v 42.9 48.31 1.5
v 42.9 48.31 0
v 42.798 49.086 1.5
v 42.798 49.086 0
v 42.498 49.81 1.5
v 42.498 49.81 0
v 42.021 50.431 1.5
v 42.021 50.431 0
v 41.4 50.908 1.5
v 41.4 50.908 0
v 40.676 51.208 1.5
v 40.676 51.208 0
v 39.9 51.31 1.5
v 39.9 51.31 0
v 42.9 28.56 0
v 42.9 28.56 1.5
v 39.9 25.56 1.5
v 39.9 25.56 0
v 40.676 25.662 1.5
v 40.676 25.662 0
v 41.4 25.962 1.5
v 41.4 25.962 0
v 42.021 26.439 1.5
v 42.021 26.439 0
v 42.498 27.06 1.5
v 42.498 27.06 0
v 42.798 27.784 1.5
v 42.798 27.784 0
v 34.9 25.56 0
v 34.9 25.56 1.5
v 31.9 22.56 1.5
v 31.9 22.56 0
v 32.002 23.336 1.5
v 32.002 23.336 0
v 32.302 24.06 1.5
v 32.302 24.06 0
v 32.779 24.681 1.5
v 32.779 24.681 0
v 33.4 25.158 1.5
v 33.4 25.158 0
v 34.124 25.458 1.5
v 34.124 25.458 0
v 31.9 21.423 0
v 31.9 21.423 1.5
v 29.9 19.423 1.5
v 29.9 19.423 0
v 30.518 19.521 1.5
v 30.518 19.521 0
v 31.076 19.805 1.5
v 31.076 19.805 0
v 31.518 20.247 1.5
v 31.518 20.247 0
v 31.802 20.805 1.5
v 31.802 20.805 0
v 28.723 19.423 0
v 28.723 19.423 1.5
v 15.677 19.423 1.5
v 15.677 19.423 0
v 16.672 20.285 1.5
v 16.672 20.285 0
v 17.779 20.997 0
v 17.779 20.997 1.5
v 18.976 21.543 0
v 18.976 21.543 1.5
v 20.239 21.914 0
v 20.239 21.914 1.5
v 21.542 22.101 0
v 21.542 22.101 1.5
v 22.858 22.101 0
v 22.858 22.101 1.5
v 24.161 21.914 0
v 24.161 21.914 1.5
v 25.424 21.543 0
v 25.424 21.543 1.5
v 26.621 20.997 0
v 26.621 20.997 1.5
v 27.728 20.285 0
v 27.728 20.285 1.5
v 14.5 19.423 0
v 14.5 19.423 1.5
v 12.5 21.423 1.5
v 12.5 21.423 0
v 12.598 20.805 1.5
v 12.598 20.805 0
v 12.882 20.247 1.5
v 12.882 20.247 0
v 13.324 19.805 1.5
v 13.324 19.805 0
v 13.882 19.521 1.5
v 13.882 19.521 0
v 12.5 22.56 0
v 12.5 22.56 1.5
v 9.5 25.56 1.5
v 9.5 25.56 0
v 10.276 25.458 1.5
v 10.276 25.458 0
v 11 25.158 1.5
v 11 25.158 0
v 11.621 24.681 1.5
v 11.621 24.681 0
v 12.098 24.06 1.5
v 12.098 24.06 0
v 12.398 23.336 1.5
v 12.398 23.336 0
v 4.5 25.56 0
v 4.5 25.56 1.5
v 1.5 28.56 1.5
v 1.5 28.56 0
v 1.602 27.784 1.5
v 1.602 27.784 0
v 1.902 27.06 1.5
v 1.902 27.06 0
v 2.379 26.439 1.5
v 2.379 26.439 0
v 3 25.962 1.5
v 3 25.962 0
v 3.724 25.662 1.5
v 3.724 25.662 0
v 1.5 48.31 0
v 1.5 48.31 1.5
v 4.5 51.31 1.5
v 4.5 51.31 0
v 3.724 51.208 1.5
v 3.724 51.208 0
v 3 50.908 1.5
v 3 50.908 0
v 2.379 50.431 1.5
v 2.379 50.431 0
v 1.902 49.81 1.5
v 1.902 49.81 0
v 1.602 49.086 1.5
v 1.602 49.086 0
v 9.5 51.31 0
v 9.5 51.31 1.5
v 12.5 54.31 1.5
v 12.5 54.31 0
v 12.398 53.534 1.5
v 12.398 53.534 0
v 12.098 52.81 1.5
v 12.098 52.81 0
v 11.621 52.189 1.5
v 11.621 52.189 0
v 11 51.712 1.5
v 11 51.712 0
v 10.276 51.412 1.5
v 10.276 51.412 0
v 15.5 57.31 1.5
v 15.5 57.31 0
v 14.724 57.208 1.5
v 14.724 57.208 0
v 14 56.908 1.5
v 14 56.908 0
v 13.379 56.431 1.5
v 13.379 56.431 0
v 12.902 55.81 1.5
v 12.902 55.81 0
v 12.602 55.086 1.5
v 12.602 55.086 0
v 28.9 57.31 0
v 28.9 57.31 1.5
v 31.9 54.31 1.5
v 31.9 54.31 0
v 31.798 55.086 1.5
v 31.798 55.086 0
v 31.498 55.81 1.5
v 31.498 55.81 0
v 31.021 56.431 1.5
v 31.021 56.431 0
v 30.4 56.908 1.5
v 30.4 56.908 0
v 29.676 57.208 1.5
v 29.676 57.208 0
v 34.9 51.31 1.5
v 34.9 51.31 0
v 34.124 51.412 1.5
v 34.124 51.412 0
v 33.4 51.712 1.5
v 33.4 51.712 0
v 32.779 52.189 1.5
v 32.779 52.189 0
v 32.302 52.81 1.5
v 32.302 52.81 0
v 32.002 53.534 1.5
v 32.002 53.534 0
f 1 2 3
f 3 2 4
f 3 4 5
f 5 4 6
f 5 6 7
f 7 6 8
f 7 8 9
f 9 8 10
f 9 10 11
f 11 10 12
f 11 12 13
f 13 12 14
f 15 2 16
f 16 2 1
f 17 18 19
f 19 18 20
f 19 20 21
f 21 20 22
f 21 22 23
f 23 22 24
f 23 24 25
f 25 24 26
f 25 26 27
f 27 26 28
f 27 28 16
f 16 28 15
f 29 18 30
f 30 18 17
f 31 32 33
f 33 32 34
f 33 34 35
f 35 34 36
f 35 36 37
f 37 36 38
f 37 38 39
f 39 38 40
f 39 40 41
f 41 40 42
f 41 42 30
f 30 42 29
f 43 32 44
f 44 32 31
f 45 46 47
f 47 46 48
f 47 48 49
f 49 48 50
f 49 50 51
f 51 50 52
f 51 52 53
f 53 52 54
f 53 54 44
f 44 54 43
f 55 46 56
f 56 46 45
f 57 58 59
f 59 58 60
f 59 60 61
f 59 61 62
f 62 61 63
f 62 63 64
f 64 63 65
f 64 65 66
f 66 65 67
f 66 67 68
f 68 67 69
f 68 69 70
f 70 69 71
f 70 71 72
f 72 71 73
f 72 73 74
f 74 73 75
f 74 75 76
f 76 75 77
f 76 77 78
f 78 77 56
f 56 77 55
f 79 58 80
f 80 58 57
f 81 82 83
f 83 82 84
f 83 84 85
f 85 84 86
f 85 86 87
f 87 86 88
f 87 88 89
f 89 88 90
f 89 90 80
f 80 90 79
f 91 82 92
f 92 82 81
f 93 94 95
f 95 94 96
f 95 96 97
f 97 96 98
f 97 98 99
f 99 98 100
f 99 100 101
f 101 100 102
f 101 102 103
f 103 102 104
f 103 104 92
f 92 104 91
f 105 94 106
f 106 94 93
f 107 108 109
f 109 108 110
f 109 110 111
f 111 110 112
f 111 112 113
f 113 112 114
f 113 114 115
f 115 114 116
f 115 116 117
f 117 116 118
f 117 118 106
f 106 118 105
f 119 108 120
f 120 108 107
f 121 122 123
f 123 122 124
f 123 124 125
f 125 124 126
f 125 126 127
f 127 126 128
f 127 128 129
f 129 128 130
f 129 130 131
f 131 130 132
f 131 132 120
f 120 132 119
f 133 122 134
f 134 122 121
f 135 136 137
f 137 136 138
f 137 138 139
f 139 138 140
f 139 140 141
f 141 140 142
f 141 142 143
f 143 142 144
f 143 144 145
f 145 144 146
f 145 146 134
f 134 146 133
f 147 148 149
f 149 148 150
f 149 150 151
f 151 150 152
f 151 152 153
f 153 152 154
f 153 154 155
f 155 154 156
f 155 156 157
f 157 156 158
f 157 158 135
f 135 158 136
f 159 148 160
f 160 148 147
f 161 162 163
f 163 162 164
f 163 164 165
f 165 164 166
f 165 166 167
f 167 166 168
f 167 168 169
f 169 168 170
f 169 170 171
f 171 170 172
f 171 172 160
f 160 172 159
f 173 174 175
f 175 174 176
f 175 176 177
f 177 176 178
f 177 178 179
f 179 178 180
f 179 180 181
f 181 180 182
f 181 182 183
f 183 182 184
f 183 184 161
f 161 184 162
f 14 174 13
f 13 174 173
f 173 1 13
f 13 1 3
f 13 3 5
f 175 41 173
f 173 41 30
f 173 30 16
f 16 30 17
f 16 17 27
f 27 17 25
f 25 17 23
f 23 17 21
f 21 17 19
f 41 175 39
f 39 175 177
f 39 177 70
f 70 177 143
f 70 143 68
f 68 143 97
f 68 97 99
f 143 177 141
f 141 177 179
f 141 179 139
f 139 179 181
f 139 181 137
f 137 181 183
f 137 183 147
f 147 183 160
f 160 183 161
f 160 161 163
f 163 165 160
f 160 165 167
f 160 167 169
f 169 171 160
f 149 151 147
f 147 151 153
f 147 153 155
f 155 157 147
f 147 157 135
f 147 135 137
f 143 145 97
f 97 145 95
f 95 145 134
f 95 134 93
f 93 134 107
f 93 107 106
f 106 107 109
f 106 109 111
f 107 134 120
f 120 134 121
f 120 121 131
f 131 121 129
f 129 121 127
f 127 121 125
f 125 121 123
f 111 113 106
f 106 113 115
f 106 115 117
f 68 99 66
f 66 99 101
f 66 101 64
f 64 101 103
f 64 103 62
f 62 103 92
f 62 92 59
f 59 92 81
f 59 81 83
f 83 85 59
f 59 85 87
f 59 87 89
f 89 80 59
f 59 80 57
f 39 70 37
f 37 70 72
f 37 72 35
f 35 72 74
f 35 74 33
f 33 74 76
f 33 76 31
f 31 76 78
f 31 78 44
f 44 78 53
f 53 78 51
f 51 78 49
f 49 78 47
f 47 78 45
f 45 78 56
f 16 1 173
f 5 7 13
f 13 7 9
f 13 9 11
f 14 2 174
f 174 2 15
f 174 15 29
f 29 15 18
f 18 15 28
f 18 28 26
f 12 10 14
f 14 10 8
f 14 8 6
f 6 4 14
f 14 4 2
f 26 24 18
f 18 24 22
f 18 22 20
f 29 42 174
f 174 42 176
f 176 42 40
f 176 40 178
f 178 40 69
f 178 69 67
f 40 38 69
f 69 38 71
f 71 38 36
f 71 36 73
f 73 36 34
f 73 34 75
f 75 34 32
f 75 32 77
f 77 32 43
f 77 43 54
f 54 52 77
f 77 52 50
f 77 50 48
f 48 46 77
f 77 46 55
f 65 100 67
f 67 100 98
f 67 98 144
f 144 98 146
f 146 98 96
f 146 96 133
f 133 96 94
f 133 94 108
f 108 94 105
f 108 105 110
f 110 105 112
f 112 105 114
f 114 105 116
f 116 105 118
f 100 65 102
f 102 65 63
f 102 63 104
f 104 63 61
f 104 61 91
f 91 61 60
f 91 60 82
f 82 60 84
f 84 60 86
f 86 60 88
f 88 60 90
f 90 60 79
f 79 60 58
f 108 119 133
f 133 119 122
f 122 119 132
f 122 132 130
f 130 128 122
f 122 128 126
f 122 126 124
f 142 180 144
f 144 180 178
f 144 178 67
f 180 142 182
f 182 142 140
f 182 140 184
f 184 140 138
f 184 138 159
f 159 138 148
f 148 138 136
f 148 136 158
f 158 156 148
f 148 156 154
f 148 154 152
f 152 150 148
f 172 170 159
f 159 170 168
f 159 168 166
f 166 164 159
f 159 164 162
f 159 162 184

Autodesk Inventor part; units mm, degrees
ref_plane "YZ Plane" through (0, 0, 0) normal (1, 0, 0) x (0, 1, 0)
ref_plane "XZ Plane" through (0, 0, 0) normal (0, 1, 0) x (-1, 0, 0)
ref_plane "XY Plane" through (0, 0, 0) normal (0, 0, 1) x (1, 0, 0)
sketch "Sketch1" plane through (0, 0, 0) normal (0, 0, 1) x (1, 0, 0)
  point P0 (0, 0)
sketch "0" plane through (0, 0, 0) normal (0, 0, 1) x (1, 0, 0)
  arc A0 (31.9, 54.31) -> (34.9, 51.31) centre (34.9, 54.31) ccw
  line L0 (34.9, 51.31) -> (39.9, 51.31)
  arc A1 (42.9, 48.31) -> (39.9, 51.31) centre (39.9, 48.31) ccw
  line L1 (42.9, 48.31) -> (42.9, 28.56)
  arc A2 (39.9, 25.56) -> (42.9, 28.56) centre (39.9, 28.56) ccw
  line L2 (39.9, 25.56) -> (34.9, 25.56)
  line L3 (15.6769, 19.4231) -> (14.5, 19.4231)
  arc A3 (12.5, 21.4231) -> (14.5, 19.4231) centre (14.5, 21.4231) ccw
  line L4 (12.5, 21.4231) -> (12.5, 22.56)
  arc A4 (12.5, 22.56) -> (9.5, 25.56) centre (9.5, 22.56) ccw
  line L5 (9.5, 51.31) -> (4.5, 51.31)
  arc A5 (4.5, 51.31) -> (1.5, 48.31) centre (4.5, 48.31) ccw
  line L6 (1.5, 48.31) -> (1.5, 28.56)
  arc A6 (1.5, 28.56) -> (4.5, 25.56) centre (4.5, 28.56) ccw
  line L7 (4.5, 25.56) -> (9.5, 25.56)
  arc A7 (31.9, 54.31) -> (28.9, 57.31) centre (28.9, 54.31) ccw
  line L8 (28.9, 57.31) -> (15.5, 57.31)
  arc A8 (15.5, 57.31) -> (12.5, 54.31) centre (15.5, 54.31) ccw
  line L9 (28.7231, 19.4231) -> (29.9, 19.4231)
  arc A9 (29.9, 19.4231) -> (31.9, 21.4231) centre (29.9, 21.4231) ccw
  line L10 (31.9, 21.4231) -> (31.9, 22.56)
  line L11 (12.705, 53.275) -> (12.705, 23.375)
  line L12 (15.805, 56.275) -> (28.595, 56.275)
  line L13 (31.595, 53.275) -> (31.595, 23.375)
  line L14 (30.345, 22.125) -> (14.055, 22.125)
  circle A10 centre (9.5, 54.31) radius 2
  circle A11 centre (9.5, 22.56) radius 2
  circle A12 centre (34.9, 22.56) radius 2
  circle A13 centre (34.9, 54.31) radius 2
  circle A14 centre (9.5, 54.31) radius 3
  circle A15 centre (9.5, 22.56) radius 3
  circle A16 centre (34.9, 22.56) radius 3
  circle A17 centre (34.9, 54.31) radius 3
  circle A18 centre (22.2, 12.9) radius 8.75
  circle A19 centre (22.2, 12.9) radius 9.225
  arc A20 (28.7231, 19.4231) -> (15.6769, 19.4231) centre (22.2, 12.9) ccw
  line L15 (22.2, 12.9) -> (28.7231, 19.4231)
  line L16 (22.2, 12.9) -> (31.425, 12.9)
  line L17 (22.2, 12.9) -> (15.6769, 19.4231)
  arc A21 (9.5, 51.31) -> (12.5, 54.31) centre (9.5, 54.31) ccw
  arc A22 (34.9, 25.56) -> (31.9, 22.56) centre (34.9, 22.56) ccw
  point P0 (31.9, 54.31)
  point P1 (12.5, 54.31)
  point P2 (4.5, 51.31)
  point P3 (1.5, 48.31)
extrude "Extrusion1" add sketch "0" along normal blind 1.5 contours A0 L0 A1 L1 A2 L2 A16 L10 A9 L9 A19 L3 A3 L4 A4 L7 A6 L6 A5 L5 A14 A8 L8 A7
properties part number "anchor-screen-cover"
